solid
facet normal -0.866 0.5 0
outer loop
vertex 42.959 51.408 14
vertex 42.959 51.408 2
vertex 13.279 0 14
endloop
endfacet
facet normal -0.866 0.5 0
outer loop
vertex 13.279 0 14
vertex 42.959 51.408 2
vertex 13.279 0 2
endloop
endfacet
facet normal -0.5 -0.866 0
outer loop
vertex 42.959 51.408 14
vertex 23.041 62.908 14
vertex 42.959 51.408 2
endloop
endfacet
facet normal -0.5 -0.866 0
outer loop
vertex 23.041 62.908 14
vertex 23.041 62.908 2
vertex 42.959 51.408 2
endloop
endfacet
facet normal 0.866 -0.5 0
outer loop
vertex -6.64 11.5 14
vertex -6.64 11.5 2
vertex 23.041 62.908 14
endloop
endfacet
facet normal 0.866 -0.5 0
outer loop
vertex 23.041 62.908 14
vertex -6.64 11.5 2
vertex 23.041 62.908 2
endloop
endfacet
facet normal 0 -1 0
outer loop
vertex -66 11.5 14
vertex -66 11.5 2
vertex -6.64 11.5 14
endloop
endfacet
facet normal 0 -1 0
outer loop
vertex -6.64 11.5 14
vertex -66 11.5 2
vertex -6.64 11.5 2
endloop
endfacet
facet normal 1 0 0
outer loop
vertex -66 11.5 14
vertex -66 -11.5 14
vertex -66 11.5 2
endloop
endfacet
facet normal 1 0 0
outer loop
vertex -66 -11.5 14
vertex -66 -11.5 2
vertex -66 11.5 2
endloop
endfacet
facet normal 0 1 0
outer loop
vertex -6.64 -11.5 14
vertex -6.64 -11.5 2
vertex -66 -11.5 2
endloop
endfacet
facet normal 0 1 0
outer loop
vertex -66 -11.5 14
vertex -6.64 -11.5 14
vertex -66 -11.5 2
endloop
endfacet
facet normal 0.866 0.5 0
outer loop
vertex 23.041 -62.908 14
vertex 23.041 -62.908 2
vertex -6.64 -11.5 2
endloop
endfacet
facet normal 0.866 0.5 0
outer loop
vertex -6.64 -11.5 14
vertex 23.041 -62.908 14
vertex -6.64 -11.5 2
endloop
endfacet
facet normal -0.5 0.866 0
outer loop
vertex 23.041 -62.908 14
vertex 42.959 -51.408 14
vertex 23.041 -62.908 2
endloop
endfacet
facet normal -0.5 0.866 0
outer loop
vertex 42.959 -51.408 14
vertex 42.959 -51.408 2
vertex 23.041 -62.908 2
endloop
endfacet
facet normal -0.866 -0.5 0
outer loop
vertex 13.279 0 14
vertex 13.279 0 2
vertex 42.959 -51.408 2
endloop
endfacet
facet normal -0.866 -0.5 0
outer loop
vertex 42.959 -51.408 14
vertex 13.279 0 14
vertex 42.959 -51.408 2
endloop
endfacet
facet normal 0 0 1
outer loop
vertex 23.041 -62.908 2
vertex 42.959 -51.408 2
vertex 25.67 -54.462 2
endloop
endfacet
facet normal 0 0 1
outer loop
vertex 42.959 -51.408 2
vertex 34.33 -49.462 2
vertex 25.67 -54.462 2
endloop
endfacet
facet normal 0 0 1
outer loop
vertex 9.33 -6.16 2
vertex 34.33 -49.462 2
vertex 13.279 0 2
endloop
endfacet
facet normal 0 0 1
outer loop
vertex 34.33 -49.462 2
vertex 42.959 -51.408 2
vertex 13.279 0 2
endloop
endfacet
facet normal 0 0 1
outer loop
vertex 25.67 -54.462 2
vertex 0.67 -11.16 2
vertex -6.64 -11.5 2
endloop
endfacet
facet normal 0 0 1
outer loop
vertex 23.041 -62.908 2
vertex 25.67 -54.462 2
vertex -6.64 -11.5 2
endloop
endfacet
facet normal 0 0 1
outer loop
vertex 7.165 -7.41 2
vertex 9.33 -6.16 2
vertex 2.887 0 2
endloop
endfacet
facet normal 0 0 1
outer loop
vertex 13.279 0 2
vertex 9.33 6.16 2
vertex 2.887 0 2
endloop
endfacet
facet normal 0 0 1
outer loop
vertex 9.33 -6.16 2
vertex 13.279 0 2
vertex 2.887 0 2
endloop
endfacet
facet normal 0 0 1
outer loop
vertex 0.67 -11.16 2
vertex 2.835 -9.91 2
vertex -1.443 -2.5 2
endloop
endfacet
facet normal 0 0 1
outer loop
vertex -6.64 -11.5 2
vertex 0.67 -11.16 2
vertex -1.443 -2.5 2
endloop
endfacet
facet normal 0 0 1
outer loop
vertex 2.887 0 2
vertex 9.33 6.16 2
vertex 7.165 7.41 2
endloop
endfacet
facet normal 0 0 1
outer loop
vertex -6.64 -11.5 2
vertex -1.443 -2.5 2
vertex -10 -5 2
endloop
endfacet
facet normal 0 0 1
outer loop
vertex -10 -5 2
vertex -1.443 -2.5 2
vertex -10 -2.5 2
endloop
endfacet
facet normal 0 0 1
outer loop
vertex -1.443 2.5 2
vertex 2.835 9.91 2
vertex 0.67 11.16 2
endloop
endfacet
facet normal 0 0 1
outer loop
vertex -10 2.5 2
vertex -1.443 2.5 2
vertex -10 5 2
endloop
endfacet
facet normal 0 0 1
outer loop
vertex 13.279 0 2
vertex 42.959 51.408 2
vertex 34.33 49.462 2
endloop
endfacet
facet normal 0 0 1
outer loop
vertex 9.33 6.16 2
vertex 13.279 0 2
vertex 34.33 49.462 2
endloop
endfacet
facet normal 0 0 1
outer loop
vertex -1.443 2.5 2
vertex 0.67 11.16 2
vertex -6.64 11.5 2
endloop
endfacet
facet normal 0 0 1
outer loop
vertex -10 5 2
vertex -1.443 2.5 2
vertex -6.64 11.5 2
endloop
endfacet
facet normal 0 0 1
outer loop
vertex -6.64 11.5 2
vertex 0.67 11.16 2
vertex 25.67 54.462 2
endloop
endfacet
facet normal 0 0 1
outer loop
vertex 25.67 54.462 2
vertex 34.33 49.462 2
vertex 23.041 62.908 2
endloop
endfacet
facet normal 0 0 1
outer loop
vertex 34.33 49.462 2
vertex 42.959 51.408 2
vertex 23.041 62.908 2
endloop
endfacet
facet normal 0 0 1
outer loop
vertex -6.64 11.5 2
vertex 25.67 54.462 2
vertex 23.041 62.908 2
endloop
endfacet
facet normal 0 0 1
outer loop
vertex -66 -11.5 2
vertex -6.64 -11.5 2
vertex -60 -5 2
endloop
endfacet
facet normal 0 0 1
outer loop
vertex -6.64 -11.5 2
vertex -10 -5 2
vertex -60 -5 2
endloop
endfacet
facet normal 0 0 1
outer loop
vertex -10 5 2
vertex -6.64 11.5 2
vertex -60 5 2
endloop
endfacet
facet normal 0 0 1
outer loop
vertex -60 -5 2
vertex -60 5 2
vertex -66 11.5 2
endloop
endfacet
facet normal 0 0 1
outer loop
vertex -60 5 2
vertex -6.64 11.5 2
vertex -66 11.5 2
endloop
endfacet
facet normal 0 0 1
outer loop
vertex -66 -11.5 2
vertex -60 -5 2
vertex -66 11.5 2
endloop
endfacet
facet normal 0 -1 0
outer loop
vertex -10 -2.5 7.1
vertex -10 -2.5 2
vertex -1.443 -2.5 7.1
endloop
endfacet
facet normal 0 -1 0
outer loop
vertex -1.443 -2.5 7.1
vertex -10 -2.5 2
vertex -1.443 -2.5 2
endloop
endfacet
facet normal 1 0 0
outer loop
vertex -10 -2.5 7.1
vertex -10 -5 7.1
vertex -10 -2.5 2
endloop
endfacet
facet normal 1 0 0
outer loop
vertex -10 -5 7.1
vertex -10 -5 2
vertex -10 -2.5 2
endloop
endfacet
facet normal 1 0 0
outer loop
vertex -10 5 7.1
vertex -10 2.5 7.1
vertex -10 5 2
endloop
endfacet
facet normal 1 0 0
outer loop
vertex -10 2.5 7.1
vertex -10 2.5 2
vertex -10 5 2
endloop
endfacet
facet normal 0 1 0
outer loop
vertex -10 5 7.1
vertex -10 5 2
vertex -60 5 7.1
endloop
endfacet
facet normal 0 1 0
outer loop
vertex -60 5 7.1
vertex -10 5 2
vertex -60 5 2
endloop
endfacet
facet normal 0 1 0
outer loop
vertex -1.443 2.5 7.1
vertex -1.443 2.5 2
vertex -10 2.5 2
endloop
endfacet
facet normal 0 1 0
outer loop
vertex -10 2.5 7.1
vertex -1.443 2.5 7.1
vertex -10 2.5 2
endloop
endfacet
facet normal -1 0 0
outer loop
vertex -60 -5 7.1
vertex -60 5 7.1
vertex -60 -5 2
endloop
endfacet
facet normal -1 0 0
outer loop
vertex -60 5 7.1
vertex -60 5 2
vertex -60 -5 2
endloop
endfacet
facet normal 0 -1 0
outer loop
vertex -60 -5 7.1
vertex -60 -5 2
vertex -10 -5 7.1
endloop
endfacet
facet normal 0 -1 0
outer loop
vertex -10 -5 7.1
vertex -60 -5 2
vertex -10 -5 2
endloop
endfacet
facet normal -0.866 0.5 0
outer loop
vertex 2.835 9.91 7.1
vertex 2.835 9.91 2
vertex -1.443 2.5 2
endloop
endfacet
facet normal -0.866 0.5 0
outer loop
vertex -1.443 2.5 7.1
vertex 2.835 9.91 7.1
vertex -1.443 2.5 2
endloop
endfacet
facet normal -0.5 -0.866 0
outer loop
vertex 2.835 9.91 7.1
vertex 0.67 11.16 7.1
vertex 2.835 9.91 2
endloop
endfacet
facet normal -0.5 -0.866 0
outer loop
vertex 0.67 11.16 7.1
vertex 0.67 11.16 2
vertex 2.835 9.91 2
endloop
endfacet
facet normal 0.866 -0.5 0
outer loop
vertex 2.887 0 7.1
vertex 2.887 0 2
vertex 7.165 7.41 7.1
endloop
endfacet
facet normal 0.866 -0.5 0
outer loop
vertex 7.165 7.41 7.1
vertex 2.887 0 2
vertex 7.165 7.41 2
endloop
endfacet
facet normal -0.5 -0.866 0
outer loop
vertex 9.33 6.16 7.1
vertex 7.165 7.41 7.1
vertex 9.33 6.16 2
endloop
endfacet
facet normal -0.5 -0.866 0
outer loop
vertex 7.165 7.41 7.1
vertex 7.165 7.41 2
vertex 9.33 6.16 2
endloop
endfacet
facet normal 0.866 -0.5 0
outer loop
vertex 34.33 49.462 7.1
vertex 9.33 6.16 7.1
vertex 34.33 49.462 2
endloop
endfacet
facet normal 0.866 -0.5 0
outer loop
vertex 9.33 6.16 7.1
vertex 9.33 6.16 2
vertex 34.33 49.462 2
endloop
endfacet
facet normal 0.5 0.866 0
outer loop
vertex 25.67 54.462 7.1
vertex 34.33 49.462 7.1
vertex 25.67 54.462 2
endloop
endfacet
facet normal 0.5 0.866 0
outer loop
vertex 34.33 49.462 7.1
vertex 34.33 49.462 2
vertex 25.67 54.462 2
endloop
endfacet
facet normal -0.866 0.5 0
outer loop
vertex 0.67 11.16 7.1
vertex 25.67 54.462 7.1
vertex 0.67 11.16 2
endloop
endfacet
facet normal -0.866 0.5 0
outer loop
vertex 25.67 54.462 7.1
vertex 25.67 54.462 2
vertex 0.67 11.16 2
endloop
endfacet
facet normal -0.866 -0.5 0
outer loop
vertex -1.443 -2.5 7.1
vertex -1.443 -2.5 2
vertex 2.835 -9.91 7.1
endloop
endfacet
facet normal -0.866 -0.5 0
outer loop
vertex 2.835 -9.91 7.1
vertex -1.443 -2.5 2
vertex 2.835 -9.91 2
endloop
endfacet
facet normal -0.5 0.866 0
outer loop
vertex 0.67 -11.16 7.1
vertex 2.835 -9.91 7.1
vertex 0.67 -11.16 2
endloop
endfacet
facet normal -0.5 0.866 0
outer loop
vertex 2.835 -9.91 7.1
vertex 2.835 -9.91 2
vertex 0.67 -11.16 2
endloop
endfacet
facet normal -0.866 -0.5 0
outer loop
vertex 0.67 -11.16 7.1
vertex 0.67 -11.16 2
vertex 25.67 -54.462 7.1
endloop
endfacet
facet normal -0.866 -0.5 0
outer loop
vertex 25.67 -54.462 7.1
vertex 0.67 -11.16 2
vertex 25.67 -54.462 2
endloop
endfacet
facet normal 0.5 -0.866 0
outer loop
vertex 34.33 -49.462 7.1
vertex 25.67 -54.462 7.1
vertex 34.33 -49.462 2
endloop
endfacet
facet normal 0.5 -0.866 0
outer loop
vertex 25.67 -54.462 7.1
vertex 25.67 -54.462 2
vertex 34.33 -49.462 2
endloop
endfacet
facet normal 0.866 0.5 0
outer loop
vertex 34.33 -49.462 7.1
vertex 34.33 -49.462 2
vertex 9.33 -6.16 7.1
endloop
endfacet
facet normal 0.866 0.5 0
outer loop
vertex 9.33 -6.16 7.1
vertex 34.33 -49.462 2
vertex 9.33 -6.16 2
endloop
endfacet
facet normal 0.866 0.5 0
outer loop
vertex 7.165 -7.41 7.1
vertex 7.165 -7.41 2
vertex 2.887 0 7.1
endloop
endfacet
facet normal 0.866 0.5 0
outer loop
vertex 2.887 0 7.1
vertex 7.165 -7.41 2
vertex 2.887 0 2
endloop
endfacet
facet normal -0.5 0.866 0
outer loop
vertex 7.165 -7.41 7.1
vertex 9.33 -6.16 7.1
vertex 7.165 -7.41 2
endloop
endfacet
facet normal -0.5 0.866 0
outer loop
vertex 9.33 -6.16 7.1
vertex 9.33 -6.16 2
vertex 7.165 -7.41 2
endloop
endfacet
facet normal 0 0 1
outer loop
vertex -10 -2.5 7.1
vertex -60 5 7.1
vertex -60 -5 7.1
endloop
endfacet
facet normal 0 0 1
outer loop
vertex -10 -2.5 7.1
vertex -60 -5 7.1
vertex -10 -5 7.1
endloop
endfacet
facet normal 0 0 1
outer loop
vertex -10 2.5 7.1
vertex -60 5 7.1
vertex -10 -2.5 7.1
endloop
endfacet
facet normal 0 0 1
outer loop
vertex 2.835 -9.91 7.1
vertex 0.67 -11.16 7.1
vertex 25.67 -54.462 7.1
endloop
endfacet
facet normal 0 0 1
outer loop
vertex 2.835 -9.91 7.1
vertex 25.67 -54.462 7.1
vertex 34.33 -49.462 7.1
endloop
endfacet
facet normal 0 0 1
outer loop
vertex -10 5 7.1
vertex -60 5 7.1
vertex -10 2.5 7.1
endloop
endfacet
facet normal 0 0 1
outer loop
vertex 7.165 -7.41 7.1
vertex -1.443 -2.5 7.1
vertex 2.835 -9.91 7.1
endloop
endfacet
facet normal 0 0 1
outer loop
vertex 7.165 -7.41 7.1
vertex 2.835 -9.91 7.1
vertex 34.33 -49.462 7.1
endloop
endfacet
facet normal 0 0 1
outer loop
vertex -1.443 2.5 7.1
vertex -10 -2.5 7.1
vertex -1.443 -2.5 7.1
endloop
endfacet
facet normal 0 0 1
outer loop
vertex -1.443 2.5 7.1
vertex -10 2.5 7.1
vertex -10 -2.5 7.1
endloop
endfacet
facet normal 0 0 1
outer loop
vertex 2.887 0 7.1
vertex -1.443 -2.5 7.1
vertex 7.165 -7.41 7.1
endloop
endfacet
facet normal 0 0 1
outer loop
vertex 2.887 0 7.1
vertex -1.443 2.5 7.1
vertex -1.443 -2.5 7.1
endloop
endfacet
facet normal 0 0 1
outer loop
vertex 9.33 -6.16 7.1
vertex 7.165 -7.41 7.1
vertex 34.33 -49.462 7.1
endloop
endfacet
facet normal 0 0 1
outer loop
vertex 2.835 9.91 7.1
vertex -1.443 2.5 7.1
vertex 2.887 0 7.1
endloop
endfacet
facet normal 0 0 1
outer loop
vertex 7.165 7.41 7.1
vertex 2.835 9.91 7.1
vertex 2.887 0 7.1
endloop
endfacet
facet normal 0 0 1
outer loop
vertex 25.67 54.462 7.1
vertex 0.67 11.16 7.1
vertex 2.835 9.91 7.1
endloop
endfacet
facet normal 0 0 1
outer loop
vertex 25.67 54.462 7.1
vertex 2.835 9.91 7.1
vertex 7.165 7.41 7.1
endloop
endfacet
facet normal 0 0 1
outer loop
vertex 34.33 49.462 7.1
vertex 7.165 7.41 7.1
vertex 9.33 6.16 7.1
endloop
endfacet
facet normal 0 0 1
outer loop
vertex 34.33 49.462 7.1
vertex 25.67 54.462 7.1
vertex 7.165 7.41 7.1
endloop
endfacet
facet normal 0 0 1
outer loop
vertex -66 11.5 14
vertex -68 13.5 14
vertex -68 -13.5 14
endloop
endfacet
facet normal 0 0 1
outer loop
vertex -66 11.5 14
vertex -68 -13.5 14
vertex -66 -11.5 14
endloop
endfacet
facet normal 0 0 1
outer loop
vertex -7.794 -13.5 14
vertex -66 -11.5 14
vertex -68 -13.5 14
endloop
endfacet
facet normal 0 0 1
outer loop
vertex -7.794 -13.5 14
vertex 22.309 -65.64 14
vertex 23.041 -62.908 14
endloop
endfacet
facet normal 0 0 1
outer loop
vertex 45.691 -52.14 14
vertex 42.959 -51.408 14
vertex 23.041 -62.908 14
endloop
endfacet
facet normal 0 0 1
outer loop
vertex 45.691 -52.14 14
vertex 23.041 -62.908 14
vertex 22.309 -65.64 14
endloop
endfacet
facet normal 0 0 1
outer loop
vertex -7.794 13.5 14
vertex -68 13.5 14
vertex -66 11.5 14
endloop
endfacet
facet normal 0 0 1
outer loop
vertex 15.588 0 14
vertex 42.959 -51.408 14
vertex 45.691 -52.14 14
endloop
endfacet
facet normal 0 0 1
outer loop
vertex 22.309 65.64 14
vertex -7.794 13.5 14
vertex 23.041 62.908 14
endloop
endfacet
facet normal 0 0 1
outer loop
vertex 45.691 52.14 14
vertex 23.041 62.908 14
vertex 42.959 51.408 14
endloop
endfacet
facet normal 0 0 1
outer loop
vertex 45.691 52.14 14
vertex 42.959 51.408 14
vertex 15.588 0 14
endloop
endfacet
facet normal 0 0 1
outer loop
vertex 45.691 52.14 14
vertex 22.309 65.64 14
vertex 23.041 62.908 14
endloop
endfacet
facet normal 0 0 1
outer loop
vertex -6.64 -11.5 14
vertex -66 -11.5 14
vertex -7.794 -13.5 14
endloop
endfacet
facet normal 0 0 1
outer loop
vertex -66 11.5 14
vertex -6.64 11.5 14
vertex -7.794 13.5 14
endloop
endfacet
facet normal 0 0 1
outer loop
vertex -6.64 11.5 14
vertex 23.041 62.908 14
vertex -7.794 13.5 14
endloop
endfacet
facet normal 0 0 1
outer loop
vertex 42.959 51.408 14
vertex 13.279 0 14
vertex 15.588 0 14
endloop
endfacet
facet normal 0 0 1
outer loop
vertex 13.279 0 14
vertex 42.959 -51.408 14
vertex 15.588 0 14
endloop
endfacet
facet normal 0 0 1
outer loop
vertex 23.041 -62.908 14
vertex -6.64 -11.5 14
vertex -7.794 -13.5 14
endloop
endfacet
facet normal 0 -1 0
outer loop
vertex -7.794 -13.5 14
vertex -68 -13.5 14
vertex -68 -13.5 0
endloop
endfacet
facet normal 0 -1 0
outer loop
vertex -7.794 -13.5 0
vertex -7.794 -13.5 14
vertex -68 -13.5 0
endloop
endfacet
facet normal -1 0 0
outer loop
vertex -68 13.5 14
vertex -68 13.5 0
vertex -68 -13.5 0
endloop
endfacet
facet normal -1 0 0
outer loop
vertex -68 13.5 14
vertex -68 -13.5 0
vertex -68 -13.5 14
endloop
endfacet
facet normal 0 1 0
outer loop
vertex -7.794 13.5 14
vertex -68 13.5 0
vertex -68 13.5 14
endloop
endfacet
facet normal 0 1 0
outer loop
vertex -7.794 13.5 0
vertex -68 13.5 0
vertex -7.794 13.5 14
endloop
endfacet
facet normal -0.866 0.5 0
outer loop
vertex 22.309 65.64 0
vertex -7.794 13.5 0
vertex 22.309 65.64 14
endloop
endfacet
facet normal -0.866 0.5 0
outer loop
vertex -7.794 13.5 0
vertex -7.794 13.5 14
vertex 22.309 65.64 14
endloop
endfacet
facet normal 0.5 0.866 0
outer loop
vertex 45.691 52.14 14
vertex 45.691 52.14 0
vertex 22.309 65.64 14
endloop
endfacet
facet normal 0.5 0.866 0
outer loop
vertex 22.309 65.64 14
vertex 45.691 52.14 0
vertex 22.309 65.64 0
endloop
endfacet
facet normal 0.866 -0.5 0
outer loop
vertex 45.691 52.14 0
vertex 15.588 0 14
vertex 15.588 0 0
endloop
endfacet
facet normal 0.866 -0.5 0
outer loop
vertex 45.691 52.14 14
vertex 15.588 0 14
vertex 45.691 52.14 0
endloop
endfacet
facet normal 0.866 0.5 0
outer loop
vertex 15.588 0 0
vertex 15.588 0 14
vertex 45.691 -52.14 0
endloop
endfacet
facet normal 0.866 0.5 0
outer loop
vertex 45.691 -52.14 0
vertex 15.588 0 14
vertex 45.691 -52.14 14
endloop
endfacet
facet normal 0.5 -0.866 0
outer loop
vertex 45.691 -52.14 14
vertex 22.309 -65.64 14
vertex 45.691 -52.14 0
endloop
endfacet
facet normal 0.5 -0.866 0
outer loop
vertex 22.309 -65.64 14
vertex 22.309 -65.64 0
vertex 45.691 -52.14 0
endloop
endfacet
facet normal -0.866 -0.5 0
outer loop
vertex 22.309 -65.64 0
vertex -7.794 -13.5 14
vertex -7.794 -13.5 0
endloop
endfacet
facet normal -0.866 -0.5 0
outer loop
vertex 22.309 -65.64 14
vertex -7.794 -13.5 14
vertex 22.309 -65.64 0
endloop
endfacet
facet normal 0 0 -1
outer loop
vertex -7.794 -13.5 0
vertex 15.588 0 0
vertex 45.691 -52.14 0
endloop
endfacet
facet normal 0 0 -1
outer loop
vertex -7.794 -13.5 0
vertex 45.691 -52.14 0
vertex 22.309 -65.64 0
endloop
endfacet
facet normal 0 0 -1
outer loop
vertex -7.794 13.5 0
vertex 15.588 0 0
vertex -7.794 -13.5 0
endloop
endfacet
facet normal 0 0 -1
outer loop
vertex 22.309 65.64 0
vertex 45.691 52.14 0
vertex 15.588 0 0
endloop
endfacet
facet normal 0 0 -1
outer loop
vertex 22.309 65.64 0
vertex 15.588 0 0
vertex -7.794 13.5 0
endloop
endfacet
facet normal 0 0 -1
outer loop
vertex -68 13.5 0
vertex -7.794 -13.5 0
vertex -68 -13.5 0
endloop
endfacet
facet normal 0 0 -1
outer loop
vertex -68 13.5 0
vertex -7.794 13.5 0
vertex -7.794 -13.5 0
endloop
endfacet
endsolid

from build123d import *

# Parameters (mm, degrees)
PAD_DEPTH    = 2
PAD001_DEPTH = 7
PAD002_DEPTH = 14
ARRAY_COUNT  = 3


with BuildPart() as pad:
    # Sketch → Pad (new body)
    with BuildSketch(Plane.XY):
        Polygon((0, 0), (-7.7942286341, 13.5), (-68, 13.5), (-68, -13.5), (-7.7942286341, -13.5), align=None)
    extrude(amount=PAD_DEPTH)


with BuildPart() as pad001:
    # Sketch001 → Pad001 (new body)
    with BuildSketch(Plane.XY.offset(0.1)):
        Polygon((0, 0), (-1.443375673, 2.5), (-10, 2.5), (-10, 5), (-60, 5), (-60, -5), (-10, -5), (-10, -2.5), (-1.443375673, -2.5), align=None)
    extrude(amount=PAD001_DEPTH)


with BuildPart() as array:
    # Sketch002 → Pad002 (new body)
    with BuildSketch(Plane.XY):
        Polygon((-6.6395280957, 11.5), (-7.7942286341, 13.5), (-68, 13.5), (-68, -13.5), (-7.7942286341, -13.5), (-6.6395280957, -11.5), (-66, -11.5), (-66, 11.5), align=None)
    extrude(amount=PAD002_DEPTH)

    # Fusion: union Pad, Pad001
    add(pad.part)
    add(pad001.part)

    # Array: Array ×3 about axis
    array_axis = Axis((0, 0, 0), (0, 0, 1))


with BuildPart() as array_1:
    add(array.part)
    for i in range(1, ARRAY_COUNT):
        add(array.part.rotate(array_axis, i * 360 / ARRAY_COUNT))


solid = array_1.part
